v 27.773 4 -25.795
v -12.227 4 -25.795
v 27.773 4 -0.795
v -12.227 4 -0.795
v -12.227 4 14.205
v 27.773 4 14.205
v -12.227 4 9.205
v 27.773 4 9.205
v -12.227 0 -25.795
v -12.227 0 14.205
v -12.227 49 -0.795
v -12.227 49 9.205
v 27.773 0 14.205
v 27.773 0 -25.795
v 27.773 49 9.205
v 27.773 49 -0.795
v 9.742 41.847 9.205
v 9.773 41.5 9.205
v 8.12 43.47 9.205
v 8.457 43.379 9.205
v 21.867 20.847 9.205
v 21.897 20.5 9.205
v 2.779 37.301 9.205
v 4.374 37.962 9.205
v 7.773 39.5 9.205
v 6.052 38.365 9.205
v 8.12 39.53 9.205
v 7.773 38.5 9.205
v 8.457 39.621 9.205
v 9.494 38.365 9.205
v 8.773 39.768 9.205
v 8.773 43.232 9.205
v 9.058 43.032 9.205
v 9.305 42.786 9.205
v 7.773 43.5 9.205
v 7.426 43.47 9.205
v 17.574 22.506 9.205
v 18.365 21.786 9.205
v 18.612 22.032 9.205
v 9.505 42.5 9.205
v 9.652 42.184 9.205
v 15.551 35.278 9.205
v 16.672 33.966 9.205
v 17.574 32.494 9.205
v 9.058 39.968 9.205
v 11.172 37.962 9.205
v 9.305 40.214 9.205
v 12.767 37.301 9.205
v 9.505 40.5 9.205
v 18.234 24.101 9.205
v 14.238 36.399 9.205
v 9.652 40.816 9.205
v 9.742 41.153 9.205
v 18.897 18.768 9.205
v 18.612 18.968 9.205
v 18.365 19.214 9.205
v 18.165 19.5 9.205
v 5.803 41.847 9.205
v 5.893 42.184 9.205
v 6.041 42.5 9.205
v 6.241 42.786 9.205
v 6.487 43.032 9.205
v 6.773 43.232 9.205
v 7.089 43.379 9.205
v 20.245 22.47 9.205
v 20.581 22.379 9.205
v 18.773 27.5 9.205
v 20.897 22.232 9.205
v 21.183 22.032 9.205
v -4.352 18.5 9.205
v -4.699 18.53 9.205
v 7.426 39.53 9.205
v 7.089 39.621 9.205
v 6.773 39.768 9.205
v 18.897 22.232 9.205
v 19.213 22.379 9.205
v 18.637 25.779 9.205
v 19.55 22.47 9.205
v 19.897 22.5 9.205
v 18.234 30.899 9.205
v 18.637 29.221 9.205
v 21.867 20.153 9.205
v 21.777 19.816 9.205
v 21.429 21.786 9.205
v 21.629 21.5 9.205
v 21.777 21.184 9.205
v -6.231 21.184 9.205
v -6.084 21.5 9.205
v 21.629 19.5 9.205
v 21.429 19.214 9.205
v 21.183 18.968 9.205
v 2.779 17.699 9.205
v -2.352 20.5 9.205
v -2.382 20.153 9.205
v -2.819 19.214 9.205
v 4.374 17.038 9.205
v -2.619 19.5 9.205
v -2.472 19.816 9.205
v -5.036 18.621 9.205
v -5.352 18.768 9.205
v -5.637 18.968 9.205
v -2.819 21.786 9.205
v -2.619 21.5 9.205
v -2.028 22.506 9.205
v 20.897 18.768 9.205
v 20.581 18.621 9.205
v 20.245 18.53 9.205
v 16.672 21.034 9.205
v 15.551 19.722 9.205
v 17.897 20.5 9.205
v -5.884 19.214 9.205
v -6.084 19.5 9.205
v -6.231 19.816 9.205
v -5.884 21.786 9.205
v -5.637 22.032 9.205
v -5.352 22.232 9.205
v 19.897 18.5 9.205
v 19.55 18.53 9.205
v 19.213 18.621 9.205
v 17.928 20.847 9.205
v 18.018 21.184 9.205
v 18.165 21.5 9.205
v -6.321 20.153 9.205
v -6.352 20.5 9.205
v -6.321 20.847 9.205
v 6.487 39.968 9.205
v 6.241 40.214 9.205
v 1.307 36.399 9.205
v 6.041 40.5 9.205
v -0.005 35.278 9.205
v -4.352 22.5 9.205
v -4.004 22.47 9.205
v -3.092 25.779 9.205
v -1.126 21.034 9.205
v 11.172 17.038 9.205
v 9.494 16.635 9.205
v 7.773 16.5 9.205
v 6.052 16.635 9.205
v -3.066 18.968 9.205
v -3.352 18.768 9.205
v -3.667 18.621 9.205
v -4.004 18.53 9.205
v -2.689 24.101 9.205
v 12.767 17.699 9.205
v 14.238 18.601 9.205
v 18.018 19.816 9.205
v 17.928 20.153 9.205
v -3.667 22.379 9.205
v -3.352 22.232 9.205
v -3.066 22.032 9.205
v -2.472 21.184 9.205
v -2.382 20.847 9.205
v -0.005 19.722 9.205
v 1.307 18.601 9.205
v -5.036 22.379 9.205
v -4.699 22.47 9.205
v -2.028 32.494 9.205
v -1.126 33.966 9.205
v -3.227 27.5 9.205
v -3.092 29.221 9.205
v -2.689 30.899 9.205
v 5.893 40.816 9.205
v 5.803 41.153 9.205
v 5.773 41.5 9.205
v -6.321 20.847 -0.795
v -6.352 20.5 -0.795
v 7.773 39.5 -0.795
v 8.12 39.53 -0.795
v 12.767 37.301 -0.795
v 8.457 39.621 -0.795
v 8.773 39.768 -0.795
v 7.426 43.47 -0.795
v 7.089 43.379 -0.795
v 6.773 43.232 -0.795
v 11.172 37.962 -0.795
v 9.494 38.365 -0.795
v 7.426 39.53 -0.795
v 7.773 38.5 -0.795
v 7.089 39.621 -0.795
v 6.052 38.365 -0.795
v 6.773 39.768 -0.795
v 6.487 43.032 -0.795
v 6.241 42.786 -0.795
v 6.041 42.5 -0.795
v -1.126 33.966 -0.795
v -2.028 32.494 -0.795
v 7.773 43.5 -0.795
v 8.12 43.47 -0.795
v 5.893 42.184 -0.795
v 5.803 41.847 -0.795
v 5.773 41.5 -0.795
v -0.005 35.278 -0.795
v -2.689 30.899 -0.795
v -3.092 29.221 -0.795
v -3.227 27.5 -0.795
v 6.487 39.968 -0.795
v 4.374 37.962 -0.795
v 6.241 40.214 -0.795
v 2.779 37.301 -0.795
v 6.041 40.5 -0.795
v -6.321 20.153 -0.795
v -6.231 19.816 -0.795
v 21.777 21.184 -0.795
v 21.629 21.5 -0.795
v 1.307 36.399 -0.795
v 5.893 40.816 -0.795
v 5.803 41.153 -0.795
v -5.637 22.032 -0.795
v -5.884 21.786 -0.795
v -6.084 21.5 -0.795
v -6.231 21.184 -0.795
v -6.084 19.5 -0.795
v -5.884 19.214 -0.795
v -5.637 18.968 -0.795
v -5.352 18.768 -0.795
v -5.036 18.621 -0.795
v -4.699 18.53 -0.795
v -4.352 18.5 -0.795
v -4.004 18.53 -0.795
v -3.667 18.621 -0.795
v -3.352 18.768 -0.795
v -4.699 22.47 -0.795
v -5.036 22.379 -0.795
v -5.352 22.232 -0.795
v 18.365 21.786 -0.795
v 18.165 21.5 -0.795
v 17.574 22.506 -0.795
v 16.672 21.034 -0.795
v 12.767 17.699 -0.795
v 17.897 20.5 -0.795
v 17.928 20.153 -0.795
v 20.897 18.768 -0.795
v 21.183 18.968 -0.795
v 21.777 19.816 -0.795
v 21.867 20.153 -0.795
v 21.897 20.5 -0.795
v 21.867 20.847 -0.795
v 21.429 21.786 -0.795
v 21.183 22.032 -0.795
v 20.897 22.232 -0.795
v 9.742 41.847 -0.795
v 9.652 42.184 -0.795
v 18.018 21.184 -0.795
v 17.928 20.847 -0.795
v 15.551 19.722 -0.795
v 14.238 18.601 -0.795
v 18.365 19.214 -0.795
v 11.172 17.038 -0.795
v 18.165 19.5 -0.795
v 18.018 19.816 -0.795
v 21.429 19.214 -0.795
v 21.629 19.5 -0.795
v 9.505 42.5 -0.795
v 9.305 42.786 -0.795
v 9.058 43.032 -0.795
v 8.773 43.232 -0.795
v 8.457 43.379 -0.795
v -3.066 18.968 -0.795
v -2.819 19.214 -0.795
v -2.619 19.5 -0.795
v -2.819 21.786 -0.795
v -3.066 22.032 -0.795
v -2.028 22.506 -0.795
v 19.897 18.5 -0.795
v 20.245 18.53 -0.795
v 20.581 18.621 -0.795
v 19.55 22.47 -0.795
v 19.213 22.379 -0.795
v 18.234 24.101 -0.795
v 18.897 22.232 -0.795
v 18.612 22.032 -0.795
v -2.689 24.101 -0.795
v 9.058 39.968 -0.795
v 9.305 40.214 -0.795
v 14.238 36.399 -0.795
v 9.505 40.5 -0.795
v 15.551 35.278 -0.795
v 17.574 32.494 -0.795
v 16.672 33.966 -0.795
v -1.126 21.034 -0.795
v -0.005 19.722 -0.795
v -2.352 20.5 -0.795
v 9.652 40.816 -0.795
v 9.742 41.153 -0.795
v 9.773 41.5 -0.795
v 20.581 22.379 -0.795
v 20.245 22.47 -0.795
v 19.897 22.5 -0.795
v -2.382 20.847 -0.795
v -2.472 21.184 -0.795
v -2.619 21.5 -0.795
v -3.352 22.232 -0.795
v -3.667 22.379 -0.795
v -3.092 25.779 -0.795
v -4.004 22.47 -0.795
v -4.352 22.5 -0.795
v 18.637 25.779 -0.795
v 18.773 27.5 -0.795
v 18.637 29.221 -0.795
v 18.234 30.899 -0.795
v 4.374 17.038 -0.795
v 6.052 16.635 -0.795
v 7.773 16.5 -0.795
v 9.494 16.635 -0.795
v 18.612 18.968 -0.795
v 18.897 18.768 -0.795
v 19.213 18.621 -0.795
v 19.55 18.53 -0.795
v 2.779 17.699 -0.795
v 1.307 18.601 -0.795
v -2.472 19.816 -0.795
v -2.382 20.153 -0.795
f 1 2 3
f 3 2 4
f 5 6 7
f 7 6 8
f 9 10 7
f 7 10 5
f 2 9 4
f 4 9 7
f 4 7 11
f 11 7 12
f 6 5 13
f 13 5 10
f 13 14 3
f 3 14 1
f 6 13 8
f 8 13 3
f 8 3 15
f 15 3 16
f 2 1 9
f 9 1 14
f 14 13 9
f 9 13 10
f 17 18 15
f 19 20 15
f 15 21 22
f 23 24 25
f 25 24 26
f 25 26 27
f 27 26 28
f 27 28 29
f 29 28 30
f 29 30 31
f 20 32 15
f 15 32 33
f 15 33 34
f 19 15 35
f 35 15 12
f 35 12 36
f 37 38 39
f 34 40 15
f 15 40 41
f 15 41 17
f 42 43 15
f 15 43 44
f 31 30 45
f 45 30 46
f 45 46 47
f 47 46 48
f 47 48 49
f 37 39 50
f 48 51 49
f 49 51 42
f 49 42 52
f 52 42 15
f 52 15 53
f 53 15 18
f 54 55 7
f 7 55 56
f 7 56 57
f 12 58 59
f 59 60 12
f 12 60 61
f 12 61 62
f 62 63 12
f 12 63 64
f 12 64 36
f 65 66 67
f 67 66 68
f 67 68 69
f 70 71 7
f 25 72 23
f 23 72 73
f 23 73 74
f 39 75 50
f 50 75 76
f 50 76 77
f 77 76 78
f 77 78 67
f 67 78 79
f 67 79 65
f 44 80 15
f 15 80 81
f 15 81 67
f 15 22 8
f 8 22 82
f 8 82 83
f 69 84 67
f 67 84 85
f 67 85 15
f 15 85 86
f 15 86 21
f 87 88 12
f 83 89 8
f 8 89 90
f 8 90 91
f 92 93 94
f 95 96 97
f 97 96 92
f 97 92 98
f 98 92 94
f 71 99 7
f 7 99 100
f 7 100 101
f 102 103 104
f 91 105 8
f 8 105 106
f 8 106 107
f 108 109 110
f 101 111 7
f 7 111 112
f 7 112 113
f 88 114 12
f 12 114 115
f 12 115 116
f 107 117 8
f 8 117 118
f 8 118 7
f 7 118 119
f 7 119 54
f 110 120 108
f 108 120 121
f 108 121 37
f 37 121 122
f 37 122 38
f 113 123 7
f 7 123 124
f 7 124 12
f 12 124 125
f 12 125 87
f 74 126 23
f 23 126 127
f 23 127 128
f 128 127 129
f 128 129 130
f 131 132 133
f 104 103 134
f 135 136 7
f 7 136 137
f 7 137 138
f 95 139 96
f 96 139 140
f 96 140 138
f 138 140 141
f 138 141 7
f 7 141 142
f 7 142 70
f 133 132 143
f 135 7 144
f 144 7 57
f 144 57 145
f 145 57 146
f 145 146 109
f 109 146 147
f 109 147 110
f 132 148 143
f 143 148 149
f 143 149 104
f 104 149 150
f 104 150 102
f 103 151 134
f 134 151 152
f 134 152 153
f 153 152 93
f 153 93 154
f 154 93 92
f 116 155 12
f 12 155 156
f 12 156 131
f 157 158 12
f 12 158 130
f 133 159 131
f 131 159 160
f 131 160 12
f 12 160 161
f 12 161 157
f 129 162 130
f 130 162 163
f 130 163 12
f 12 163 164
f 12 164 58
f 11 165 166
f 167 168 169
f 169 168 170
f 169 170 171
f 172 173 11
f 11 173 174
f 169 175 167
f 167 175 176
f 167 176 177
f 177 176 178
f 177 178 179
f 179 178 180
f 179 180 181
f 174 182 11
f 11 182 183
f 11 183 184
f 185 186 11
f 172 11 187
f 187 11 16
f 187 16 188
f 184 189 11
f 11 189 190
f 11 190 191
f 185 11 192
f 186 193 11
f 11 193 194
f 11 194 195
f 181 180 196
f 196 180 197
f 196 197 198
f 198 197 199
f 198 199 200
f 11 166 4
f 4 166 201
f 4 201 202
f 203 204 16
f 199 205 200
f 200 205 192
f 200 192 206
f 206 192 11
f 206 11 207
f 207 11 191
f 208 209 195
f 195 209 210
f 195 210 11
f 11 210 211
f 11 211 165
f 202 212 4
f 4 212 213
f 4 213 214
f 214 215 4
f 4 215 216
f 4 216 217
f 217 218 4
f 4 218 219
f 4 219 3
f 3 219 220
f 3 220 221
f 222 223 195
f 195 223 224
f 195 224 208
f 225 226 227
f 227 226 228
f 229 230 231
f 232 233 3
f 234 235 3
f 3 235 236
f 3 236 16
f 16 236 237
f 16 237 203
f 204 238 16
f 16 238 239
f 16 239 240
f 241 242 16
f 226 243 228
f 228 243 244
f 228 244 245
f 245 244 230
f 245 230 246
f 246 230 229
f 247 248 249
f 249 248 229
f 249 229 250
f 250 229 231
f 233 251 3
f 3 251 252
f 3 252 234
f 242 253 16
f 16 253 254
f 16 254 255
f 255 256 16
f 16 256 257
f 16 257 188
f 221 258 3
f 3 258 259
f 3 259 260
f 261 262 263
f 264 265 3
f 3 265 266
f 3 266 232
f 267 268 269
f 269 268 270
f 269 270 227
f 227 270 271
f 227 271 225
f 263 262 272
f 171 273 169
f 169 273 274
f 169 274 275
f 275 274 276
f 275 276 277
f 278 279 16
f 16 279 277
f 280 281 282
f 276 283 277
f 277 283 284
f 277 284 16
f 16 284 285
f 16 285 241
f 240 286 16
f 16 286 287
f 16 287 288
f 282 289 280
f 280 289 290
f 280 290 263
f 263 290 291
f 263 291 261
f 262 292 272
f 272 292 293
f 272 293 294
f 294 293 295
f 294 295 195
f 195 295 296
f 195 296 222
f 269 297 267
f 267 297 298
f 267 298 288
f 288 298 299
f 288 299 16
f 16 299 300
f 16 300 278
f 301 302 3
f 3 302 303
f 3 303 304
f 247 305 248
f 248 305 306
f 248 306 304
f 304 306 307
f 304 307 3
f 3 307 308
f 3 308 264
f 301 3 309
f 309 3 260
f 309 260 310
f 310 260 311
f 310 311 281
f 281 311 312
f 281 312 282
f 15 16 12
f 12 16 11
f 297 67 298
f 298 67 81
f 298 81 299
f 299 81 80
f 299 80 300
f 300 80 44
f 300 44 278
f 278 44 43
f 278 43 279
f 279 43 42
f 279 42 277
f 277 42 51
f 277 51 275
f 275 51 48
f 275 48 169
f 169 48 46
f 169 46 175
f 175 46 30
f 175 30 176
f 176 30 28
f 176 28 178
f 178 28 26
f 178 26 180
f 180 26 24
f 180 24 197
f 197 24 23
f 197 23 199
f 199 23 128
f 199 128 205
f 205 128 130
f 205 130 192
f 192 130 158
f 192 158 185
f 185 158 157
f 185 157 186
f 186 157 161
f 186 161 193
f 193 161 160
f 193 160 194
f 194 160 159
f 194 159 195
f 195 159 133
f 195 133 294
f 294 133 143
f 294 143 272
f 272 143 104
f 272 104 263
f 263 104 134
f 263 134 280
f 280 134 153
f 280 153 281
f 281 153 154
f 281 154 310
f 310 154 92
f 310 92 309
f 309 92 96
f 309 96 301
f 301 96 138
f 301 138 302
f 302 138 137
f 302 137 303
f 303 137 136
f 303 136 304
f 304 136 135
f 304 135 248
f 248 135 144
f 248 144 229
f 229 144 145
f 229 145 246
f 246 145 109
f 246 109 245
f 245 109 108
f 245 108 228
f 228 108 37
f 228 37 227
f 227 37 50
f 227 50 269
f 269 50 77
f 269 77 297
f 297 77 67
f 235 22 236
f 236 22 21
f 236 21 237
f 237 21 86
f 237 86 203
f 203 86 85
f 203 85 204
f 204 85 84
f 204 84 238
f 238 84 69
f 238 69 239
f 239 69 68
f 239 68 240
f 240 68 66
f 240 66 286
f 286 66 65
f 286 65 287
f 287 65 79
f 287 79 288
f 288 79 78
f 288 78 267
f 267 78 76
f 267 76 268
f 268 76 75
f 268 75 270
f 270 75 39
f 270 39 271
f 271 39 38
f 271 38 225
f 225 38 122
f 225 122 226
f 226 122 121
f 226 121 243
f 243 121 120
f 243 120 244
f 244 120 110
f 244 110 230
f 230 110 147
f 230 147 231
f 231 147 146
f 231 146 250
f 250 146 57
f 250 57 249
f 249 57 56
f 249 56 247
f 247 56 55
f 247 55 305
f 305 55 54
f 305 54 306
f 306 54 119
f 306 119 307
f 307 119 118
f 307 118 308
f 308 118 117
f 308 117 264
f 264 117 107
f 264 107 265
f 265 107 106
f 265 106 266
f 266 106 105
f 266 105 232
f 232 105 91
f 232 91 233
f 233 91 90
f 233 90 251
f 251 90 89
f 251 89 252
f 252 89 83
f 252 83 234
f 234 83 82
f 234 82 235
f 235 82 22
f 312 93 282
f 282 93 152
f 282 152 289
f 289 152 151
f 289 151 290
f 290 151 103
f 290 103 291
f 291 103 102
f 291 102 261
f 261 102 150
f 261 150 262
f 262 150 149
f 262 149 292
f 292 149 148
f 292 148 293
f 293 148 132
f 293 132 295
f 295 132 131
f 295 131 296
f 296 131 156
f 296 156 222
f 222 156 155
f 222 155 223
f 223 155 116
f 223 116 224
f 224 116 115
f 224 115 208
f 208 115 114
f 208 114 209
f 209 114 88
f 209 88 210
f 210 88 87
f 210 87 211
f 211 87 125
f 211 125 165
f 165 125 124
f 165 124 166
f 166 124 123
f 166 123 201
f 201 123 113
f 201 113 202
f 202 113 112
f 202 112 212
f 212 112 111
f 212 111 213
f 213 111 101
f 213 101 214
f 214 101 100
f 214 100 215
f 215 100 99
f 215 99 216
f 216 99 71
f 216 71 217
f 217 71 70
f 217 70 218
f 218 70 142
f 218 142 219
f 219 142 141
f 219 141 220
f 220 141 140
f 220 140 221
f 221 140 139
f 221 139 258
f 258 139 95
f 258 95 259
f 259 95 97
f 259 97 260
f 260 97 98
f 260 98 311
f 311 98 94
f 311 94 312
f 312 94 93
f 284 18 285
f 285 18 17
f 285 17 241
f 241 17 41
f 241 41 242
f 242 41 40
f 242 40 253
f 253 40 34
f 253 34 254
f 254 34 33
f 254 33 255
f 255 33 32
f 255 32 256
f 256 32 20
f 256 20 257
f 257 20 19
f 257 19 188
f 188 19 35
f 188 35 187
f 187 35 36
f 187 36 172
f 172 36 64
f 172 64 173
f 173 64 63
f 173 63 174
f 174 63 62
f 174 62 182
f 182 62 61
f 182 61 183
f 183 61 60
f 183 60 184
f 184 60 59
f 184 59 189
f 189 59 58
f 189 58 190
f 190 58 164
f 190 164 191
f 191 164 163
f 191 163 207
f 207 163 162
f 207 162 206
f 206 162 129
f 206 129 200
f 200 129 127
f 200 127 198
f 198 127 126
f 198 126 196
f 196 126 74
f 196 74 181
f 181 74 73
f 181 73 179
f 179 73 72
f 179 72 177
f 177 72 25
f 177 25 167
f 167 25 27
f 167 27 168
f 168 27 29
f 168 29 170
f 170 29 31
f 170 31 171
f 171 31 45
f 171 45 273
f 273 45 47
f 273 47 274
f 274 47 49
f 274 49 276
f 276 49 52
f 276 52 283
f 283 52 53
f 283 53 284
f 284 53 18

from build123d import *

# Parameters (mm, degrees)
SKETCH2_W           = 40
SKETCH2_H           = 40
BOSS_EXTRUDE1_DEPTH = 4
SKETCH3_W           = 40
SKETCH3_H           = 10
BOSS_EXTRUDE2_DEPTH = 45
CUT_EXTRUDE1_REACH  = 68.312
SKETCH4_R           = 11
SKETCH4_R_2         = 2


with BuildPart() as part:
    # Sketch2 → Boss-Extrude1 (new body)
    with BuildSketch(Plane(origin=(0, 0, 0), x_dir=(1, 0, 0), z_dir=(0, 1, 0))):
        with Locations((7.772848934, 5.794927438)):
            Rectangle(SKETCH2_W, SKETCH2_H)
    extrude(amount=BOSS_EXTRUDE1_DEPTH)

    # Sketch3 → Boss-Extrude2 (add)
    with BuildSketch(Plane(origin=(0, 4, 0), x_dir=(1, 0, 0), z_dir=(0, 1, 0))):
        with Locations((7.772848934, -4.205072562)):
            Rectangle(SKETCH3_W, SKETCH3_H)
    extrude(amount=BOSS_EXTRUDE2_DEPTH)

    # Sketch4 → Cut-Extrude1 (cut, up to next)
    with BuildSketch(Plane.XY.offset(9.205072562), mode=Mode.PRIVATE) as cut_extrude1_sk1:
        with Locations((7.772848934, 27.5)):
            Circle(SKETCH4_R)
    cut_extrude1_tool1 = extrude(cut_extrude1_sk1.sketch, amount=-CUT_EXTRUDE1_REACH, mode=Mode.PRIVATE) & part.part
    # Sketch4 → Cut-Extrude1 (cut, up to next)
    with BuildSketch(Plane.XY.offset(9.205072562), mode=Mode.PRIVATE) as cut_extrude1_sk2:
        with Locations((19.897204587, 20.5)):
            Circle(SKETCH4_R_2)
    cut_extrude1_tool2 = extrude(cut_extrude1_sk2.sketch, amount=-CUT_EXTRUDE1_REACH, mode=Mode.PRIVATE) & part.part
    # Sketch4 → Cut-Extrude1 (cut, up to next)
    with BuildSketch(Plane.XY.offset(9.205072562), mode=Mode.PRIVATE) as cut_extrude1_sk3:
        with Locations((-4.351506719, 20.5)):
            Circle(SKETCH4_R_2)
    cut_extrude1_tool3 = extrude(cut_extrude1_sk3.sketch, amount=-CUT_EXTRUDE1_REACH, mode=Mode.PRIVATE) & part.part
    # Sketch4 → Cut-Extrude1 (cut, up to next)
    with BuildSketch(Plane.XY.offset(9.205072562), mode=Mode.PRIVATE) as cut_extrude1_sk4:
        with Locations((7.772848934, 41.5)):
            Circle(SKETCH4_R_2)
    cut_extrude1_tool4 = extrude(cut_extrude1_sk4.sketch, amount=-CUT_EXTRUDE1_REACH, mode=Mode.PRIVATE) & part.part
    add(cut_extrude1_tool1.solids().sort_by_distance((7.772849, 27.5, 9.205073))[0], mode=Mode.SUBTRACT)
    add(cut_extrude1_tool2.solids().sort_by_distance((19.897205, 20.5, 9.205073))[0], mode=Mode.SUBTRACT)
    add(cut_extrude1_tool3.solids().sort_by_distance((-4.351507, 20.5, 9.205073))[0], mode=Mode.SUBTRACT)
    add(cut_extrude1_tool4.solids().sort_by_distance((7.772849, 41.5, 9.205073))[0], mode=Mode.SUBTRACT)


solid = part.part
